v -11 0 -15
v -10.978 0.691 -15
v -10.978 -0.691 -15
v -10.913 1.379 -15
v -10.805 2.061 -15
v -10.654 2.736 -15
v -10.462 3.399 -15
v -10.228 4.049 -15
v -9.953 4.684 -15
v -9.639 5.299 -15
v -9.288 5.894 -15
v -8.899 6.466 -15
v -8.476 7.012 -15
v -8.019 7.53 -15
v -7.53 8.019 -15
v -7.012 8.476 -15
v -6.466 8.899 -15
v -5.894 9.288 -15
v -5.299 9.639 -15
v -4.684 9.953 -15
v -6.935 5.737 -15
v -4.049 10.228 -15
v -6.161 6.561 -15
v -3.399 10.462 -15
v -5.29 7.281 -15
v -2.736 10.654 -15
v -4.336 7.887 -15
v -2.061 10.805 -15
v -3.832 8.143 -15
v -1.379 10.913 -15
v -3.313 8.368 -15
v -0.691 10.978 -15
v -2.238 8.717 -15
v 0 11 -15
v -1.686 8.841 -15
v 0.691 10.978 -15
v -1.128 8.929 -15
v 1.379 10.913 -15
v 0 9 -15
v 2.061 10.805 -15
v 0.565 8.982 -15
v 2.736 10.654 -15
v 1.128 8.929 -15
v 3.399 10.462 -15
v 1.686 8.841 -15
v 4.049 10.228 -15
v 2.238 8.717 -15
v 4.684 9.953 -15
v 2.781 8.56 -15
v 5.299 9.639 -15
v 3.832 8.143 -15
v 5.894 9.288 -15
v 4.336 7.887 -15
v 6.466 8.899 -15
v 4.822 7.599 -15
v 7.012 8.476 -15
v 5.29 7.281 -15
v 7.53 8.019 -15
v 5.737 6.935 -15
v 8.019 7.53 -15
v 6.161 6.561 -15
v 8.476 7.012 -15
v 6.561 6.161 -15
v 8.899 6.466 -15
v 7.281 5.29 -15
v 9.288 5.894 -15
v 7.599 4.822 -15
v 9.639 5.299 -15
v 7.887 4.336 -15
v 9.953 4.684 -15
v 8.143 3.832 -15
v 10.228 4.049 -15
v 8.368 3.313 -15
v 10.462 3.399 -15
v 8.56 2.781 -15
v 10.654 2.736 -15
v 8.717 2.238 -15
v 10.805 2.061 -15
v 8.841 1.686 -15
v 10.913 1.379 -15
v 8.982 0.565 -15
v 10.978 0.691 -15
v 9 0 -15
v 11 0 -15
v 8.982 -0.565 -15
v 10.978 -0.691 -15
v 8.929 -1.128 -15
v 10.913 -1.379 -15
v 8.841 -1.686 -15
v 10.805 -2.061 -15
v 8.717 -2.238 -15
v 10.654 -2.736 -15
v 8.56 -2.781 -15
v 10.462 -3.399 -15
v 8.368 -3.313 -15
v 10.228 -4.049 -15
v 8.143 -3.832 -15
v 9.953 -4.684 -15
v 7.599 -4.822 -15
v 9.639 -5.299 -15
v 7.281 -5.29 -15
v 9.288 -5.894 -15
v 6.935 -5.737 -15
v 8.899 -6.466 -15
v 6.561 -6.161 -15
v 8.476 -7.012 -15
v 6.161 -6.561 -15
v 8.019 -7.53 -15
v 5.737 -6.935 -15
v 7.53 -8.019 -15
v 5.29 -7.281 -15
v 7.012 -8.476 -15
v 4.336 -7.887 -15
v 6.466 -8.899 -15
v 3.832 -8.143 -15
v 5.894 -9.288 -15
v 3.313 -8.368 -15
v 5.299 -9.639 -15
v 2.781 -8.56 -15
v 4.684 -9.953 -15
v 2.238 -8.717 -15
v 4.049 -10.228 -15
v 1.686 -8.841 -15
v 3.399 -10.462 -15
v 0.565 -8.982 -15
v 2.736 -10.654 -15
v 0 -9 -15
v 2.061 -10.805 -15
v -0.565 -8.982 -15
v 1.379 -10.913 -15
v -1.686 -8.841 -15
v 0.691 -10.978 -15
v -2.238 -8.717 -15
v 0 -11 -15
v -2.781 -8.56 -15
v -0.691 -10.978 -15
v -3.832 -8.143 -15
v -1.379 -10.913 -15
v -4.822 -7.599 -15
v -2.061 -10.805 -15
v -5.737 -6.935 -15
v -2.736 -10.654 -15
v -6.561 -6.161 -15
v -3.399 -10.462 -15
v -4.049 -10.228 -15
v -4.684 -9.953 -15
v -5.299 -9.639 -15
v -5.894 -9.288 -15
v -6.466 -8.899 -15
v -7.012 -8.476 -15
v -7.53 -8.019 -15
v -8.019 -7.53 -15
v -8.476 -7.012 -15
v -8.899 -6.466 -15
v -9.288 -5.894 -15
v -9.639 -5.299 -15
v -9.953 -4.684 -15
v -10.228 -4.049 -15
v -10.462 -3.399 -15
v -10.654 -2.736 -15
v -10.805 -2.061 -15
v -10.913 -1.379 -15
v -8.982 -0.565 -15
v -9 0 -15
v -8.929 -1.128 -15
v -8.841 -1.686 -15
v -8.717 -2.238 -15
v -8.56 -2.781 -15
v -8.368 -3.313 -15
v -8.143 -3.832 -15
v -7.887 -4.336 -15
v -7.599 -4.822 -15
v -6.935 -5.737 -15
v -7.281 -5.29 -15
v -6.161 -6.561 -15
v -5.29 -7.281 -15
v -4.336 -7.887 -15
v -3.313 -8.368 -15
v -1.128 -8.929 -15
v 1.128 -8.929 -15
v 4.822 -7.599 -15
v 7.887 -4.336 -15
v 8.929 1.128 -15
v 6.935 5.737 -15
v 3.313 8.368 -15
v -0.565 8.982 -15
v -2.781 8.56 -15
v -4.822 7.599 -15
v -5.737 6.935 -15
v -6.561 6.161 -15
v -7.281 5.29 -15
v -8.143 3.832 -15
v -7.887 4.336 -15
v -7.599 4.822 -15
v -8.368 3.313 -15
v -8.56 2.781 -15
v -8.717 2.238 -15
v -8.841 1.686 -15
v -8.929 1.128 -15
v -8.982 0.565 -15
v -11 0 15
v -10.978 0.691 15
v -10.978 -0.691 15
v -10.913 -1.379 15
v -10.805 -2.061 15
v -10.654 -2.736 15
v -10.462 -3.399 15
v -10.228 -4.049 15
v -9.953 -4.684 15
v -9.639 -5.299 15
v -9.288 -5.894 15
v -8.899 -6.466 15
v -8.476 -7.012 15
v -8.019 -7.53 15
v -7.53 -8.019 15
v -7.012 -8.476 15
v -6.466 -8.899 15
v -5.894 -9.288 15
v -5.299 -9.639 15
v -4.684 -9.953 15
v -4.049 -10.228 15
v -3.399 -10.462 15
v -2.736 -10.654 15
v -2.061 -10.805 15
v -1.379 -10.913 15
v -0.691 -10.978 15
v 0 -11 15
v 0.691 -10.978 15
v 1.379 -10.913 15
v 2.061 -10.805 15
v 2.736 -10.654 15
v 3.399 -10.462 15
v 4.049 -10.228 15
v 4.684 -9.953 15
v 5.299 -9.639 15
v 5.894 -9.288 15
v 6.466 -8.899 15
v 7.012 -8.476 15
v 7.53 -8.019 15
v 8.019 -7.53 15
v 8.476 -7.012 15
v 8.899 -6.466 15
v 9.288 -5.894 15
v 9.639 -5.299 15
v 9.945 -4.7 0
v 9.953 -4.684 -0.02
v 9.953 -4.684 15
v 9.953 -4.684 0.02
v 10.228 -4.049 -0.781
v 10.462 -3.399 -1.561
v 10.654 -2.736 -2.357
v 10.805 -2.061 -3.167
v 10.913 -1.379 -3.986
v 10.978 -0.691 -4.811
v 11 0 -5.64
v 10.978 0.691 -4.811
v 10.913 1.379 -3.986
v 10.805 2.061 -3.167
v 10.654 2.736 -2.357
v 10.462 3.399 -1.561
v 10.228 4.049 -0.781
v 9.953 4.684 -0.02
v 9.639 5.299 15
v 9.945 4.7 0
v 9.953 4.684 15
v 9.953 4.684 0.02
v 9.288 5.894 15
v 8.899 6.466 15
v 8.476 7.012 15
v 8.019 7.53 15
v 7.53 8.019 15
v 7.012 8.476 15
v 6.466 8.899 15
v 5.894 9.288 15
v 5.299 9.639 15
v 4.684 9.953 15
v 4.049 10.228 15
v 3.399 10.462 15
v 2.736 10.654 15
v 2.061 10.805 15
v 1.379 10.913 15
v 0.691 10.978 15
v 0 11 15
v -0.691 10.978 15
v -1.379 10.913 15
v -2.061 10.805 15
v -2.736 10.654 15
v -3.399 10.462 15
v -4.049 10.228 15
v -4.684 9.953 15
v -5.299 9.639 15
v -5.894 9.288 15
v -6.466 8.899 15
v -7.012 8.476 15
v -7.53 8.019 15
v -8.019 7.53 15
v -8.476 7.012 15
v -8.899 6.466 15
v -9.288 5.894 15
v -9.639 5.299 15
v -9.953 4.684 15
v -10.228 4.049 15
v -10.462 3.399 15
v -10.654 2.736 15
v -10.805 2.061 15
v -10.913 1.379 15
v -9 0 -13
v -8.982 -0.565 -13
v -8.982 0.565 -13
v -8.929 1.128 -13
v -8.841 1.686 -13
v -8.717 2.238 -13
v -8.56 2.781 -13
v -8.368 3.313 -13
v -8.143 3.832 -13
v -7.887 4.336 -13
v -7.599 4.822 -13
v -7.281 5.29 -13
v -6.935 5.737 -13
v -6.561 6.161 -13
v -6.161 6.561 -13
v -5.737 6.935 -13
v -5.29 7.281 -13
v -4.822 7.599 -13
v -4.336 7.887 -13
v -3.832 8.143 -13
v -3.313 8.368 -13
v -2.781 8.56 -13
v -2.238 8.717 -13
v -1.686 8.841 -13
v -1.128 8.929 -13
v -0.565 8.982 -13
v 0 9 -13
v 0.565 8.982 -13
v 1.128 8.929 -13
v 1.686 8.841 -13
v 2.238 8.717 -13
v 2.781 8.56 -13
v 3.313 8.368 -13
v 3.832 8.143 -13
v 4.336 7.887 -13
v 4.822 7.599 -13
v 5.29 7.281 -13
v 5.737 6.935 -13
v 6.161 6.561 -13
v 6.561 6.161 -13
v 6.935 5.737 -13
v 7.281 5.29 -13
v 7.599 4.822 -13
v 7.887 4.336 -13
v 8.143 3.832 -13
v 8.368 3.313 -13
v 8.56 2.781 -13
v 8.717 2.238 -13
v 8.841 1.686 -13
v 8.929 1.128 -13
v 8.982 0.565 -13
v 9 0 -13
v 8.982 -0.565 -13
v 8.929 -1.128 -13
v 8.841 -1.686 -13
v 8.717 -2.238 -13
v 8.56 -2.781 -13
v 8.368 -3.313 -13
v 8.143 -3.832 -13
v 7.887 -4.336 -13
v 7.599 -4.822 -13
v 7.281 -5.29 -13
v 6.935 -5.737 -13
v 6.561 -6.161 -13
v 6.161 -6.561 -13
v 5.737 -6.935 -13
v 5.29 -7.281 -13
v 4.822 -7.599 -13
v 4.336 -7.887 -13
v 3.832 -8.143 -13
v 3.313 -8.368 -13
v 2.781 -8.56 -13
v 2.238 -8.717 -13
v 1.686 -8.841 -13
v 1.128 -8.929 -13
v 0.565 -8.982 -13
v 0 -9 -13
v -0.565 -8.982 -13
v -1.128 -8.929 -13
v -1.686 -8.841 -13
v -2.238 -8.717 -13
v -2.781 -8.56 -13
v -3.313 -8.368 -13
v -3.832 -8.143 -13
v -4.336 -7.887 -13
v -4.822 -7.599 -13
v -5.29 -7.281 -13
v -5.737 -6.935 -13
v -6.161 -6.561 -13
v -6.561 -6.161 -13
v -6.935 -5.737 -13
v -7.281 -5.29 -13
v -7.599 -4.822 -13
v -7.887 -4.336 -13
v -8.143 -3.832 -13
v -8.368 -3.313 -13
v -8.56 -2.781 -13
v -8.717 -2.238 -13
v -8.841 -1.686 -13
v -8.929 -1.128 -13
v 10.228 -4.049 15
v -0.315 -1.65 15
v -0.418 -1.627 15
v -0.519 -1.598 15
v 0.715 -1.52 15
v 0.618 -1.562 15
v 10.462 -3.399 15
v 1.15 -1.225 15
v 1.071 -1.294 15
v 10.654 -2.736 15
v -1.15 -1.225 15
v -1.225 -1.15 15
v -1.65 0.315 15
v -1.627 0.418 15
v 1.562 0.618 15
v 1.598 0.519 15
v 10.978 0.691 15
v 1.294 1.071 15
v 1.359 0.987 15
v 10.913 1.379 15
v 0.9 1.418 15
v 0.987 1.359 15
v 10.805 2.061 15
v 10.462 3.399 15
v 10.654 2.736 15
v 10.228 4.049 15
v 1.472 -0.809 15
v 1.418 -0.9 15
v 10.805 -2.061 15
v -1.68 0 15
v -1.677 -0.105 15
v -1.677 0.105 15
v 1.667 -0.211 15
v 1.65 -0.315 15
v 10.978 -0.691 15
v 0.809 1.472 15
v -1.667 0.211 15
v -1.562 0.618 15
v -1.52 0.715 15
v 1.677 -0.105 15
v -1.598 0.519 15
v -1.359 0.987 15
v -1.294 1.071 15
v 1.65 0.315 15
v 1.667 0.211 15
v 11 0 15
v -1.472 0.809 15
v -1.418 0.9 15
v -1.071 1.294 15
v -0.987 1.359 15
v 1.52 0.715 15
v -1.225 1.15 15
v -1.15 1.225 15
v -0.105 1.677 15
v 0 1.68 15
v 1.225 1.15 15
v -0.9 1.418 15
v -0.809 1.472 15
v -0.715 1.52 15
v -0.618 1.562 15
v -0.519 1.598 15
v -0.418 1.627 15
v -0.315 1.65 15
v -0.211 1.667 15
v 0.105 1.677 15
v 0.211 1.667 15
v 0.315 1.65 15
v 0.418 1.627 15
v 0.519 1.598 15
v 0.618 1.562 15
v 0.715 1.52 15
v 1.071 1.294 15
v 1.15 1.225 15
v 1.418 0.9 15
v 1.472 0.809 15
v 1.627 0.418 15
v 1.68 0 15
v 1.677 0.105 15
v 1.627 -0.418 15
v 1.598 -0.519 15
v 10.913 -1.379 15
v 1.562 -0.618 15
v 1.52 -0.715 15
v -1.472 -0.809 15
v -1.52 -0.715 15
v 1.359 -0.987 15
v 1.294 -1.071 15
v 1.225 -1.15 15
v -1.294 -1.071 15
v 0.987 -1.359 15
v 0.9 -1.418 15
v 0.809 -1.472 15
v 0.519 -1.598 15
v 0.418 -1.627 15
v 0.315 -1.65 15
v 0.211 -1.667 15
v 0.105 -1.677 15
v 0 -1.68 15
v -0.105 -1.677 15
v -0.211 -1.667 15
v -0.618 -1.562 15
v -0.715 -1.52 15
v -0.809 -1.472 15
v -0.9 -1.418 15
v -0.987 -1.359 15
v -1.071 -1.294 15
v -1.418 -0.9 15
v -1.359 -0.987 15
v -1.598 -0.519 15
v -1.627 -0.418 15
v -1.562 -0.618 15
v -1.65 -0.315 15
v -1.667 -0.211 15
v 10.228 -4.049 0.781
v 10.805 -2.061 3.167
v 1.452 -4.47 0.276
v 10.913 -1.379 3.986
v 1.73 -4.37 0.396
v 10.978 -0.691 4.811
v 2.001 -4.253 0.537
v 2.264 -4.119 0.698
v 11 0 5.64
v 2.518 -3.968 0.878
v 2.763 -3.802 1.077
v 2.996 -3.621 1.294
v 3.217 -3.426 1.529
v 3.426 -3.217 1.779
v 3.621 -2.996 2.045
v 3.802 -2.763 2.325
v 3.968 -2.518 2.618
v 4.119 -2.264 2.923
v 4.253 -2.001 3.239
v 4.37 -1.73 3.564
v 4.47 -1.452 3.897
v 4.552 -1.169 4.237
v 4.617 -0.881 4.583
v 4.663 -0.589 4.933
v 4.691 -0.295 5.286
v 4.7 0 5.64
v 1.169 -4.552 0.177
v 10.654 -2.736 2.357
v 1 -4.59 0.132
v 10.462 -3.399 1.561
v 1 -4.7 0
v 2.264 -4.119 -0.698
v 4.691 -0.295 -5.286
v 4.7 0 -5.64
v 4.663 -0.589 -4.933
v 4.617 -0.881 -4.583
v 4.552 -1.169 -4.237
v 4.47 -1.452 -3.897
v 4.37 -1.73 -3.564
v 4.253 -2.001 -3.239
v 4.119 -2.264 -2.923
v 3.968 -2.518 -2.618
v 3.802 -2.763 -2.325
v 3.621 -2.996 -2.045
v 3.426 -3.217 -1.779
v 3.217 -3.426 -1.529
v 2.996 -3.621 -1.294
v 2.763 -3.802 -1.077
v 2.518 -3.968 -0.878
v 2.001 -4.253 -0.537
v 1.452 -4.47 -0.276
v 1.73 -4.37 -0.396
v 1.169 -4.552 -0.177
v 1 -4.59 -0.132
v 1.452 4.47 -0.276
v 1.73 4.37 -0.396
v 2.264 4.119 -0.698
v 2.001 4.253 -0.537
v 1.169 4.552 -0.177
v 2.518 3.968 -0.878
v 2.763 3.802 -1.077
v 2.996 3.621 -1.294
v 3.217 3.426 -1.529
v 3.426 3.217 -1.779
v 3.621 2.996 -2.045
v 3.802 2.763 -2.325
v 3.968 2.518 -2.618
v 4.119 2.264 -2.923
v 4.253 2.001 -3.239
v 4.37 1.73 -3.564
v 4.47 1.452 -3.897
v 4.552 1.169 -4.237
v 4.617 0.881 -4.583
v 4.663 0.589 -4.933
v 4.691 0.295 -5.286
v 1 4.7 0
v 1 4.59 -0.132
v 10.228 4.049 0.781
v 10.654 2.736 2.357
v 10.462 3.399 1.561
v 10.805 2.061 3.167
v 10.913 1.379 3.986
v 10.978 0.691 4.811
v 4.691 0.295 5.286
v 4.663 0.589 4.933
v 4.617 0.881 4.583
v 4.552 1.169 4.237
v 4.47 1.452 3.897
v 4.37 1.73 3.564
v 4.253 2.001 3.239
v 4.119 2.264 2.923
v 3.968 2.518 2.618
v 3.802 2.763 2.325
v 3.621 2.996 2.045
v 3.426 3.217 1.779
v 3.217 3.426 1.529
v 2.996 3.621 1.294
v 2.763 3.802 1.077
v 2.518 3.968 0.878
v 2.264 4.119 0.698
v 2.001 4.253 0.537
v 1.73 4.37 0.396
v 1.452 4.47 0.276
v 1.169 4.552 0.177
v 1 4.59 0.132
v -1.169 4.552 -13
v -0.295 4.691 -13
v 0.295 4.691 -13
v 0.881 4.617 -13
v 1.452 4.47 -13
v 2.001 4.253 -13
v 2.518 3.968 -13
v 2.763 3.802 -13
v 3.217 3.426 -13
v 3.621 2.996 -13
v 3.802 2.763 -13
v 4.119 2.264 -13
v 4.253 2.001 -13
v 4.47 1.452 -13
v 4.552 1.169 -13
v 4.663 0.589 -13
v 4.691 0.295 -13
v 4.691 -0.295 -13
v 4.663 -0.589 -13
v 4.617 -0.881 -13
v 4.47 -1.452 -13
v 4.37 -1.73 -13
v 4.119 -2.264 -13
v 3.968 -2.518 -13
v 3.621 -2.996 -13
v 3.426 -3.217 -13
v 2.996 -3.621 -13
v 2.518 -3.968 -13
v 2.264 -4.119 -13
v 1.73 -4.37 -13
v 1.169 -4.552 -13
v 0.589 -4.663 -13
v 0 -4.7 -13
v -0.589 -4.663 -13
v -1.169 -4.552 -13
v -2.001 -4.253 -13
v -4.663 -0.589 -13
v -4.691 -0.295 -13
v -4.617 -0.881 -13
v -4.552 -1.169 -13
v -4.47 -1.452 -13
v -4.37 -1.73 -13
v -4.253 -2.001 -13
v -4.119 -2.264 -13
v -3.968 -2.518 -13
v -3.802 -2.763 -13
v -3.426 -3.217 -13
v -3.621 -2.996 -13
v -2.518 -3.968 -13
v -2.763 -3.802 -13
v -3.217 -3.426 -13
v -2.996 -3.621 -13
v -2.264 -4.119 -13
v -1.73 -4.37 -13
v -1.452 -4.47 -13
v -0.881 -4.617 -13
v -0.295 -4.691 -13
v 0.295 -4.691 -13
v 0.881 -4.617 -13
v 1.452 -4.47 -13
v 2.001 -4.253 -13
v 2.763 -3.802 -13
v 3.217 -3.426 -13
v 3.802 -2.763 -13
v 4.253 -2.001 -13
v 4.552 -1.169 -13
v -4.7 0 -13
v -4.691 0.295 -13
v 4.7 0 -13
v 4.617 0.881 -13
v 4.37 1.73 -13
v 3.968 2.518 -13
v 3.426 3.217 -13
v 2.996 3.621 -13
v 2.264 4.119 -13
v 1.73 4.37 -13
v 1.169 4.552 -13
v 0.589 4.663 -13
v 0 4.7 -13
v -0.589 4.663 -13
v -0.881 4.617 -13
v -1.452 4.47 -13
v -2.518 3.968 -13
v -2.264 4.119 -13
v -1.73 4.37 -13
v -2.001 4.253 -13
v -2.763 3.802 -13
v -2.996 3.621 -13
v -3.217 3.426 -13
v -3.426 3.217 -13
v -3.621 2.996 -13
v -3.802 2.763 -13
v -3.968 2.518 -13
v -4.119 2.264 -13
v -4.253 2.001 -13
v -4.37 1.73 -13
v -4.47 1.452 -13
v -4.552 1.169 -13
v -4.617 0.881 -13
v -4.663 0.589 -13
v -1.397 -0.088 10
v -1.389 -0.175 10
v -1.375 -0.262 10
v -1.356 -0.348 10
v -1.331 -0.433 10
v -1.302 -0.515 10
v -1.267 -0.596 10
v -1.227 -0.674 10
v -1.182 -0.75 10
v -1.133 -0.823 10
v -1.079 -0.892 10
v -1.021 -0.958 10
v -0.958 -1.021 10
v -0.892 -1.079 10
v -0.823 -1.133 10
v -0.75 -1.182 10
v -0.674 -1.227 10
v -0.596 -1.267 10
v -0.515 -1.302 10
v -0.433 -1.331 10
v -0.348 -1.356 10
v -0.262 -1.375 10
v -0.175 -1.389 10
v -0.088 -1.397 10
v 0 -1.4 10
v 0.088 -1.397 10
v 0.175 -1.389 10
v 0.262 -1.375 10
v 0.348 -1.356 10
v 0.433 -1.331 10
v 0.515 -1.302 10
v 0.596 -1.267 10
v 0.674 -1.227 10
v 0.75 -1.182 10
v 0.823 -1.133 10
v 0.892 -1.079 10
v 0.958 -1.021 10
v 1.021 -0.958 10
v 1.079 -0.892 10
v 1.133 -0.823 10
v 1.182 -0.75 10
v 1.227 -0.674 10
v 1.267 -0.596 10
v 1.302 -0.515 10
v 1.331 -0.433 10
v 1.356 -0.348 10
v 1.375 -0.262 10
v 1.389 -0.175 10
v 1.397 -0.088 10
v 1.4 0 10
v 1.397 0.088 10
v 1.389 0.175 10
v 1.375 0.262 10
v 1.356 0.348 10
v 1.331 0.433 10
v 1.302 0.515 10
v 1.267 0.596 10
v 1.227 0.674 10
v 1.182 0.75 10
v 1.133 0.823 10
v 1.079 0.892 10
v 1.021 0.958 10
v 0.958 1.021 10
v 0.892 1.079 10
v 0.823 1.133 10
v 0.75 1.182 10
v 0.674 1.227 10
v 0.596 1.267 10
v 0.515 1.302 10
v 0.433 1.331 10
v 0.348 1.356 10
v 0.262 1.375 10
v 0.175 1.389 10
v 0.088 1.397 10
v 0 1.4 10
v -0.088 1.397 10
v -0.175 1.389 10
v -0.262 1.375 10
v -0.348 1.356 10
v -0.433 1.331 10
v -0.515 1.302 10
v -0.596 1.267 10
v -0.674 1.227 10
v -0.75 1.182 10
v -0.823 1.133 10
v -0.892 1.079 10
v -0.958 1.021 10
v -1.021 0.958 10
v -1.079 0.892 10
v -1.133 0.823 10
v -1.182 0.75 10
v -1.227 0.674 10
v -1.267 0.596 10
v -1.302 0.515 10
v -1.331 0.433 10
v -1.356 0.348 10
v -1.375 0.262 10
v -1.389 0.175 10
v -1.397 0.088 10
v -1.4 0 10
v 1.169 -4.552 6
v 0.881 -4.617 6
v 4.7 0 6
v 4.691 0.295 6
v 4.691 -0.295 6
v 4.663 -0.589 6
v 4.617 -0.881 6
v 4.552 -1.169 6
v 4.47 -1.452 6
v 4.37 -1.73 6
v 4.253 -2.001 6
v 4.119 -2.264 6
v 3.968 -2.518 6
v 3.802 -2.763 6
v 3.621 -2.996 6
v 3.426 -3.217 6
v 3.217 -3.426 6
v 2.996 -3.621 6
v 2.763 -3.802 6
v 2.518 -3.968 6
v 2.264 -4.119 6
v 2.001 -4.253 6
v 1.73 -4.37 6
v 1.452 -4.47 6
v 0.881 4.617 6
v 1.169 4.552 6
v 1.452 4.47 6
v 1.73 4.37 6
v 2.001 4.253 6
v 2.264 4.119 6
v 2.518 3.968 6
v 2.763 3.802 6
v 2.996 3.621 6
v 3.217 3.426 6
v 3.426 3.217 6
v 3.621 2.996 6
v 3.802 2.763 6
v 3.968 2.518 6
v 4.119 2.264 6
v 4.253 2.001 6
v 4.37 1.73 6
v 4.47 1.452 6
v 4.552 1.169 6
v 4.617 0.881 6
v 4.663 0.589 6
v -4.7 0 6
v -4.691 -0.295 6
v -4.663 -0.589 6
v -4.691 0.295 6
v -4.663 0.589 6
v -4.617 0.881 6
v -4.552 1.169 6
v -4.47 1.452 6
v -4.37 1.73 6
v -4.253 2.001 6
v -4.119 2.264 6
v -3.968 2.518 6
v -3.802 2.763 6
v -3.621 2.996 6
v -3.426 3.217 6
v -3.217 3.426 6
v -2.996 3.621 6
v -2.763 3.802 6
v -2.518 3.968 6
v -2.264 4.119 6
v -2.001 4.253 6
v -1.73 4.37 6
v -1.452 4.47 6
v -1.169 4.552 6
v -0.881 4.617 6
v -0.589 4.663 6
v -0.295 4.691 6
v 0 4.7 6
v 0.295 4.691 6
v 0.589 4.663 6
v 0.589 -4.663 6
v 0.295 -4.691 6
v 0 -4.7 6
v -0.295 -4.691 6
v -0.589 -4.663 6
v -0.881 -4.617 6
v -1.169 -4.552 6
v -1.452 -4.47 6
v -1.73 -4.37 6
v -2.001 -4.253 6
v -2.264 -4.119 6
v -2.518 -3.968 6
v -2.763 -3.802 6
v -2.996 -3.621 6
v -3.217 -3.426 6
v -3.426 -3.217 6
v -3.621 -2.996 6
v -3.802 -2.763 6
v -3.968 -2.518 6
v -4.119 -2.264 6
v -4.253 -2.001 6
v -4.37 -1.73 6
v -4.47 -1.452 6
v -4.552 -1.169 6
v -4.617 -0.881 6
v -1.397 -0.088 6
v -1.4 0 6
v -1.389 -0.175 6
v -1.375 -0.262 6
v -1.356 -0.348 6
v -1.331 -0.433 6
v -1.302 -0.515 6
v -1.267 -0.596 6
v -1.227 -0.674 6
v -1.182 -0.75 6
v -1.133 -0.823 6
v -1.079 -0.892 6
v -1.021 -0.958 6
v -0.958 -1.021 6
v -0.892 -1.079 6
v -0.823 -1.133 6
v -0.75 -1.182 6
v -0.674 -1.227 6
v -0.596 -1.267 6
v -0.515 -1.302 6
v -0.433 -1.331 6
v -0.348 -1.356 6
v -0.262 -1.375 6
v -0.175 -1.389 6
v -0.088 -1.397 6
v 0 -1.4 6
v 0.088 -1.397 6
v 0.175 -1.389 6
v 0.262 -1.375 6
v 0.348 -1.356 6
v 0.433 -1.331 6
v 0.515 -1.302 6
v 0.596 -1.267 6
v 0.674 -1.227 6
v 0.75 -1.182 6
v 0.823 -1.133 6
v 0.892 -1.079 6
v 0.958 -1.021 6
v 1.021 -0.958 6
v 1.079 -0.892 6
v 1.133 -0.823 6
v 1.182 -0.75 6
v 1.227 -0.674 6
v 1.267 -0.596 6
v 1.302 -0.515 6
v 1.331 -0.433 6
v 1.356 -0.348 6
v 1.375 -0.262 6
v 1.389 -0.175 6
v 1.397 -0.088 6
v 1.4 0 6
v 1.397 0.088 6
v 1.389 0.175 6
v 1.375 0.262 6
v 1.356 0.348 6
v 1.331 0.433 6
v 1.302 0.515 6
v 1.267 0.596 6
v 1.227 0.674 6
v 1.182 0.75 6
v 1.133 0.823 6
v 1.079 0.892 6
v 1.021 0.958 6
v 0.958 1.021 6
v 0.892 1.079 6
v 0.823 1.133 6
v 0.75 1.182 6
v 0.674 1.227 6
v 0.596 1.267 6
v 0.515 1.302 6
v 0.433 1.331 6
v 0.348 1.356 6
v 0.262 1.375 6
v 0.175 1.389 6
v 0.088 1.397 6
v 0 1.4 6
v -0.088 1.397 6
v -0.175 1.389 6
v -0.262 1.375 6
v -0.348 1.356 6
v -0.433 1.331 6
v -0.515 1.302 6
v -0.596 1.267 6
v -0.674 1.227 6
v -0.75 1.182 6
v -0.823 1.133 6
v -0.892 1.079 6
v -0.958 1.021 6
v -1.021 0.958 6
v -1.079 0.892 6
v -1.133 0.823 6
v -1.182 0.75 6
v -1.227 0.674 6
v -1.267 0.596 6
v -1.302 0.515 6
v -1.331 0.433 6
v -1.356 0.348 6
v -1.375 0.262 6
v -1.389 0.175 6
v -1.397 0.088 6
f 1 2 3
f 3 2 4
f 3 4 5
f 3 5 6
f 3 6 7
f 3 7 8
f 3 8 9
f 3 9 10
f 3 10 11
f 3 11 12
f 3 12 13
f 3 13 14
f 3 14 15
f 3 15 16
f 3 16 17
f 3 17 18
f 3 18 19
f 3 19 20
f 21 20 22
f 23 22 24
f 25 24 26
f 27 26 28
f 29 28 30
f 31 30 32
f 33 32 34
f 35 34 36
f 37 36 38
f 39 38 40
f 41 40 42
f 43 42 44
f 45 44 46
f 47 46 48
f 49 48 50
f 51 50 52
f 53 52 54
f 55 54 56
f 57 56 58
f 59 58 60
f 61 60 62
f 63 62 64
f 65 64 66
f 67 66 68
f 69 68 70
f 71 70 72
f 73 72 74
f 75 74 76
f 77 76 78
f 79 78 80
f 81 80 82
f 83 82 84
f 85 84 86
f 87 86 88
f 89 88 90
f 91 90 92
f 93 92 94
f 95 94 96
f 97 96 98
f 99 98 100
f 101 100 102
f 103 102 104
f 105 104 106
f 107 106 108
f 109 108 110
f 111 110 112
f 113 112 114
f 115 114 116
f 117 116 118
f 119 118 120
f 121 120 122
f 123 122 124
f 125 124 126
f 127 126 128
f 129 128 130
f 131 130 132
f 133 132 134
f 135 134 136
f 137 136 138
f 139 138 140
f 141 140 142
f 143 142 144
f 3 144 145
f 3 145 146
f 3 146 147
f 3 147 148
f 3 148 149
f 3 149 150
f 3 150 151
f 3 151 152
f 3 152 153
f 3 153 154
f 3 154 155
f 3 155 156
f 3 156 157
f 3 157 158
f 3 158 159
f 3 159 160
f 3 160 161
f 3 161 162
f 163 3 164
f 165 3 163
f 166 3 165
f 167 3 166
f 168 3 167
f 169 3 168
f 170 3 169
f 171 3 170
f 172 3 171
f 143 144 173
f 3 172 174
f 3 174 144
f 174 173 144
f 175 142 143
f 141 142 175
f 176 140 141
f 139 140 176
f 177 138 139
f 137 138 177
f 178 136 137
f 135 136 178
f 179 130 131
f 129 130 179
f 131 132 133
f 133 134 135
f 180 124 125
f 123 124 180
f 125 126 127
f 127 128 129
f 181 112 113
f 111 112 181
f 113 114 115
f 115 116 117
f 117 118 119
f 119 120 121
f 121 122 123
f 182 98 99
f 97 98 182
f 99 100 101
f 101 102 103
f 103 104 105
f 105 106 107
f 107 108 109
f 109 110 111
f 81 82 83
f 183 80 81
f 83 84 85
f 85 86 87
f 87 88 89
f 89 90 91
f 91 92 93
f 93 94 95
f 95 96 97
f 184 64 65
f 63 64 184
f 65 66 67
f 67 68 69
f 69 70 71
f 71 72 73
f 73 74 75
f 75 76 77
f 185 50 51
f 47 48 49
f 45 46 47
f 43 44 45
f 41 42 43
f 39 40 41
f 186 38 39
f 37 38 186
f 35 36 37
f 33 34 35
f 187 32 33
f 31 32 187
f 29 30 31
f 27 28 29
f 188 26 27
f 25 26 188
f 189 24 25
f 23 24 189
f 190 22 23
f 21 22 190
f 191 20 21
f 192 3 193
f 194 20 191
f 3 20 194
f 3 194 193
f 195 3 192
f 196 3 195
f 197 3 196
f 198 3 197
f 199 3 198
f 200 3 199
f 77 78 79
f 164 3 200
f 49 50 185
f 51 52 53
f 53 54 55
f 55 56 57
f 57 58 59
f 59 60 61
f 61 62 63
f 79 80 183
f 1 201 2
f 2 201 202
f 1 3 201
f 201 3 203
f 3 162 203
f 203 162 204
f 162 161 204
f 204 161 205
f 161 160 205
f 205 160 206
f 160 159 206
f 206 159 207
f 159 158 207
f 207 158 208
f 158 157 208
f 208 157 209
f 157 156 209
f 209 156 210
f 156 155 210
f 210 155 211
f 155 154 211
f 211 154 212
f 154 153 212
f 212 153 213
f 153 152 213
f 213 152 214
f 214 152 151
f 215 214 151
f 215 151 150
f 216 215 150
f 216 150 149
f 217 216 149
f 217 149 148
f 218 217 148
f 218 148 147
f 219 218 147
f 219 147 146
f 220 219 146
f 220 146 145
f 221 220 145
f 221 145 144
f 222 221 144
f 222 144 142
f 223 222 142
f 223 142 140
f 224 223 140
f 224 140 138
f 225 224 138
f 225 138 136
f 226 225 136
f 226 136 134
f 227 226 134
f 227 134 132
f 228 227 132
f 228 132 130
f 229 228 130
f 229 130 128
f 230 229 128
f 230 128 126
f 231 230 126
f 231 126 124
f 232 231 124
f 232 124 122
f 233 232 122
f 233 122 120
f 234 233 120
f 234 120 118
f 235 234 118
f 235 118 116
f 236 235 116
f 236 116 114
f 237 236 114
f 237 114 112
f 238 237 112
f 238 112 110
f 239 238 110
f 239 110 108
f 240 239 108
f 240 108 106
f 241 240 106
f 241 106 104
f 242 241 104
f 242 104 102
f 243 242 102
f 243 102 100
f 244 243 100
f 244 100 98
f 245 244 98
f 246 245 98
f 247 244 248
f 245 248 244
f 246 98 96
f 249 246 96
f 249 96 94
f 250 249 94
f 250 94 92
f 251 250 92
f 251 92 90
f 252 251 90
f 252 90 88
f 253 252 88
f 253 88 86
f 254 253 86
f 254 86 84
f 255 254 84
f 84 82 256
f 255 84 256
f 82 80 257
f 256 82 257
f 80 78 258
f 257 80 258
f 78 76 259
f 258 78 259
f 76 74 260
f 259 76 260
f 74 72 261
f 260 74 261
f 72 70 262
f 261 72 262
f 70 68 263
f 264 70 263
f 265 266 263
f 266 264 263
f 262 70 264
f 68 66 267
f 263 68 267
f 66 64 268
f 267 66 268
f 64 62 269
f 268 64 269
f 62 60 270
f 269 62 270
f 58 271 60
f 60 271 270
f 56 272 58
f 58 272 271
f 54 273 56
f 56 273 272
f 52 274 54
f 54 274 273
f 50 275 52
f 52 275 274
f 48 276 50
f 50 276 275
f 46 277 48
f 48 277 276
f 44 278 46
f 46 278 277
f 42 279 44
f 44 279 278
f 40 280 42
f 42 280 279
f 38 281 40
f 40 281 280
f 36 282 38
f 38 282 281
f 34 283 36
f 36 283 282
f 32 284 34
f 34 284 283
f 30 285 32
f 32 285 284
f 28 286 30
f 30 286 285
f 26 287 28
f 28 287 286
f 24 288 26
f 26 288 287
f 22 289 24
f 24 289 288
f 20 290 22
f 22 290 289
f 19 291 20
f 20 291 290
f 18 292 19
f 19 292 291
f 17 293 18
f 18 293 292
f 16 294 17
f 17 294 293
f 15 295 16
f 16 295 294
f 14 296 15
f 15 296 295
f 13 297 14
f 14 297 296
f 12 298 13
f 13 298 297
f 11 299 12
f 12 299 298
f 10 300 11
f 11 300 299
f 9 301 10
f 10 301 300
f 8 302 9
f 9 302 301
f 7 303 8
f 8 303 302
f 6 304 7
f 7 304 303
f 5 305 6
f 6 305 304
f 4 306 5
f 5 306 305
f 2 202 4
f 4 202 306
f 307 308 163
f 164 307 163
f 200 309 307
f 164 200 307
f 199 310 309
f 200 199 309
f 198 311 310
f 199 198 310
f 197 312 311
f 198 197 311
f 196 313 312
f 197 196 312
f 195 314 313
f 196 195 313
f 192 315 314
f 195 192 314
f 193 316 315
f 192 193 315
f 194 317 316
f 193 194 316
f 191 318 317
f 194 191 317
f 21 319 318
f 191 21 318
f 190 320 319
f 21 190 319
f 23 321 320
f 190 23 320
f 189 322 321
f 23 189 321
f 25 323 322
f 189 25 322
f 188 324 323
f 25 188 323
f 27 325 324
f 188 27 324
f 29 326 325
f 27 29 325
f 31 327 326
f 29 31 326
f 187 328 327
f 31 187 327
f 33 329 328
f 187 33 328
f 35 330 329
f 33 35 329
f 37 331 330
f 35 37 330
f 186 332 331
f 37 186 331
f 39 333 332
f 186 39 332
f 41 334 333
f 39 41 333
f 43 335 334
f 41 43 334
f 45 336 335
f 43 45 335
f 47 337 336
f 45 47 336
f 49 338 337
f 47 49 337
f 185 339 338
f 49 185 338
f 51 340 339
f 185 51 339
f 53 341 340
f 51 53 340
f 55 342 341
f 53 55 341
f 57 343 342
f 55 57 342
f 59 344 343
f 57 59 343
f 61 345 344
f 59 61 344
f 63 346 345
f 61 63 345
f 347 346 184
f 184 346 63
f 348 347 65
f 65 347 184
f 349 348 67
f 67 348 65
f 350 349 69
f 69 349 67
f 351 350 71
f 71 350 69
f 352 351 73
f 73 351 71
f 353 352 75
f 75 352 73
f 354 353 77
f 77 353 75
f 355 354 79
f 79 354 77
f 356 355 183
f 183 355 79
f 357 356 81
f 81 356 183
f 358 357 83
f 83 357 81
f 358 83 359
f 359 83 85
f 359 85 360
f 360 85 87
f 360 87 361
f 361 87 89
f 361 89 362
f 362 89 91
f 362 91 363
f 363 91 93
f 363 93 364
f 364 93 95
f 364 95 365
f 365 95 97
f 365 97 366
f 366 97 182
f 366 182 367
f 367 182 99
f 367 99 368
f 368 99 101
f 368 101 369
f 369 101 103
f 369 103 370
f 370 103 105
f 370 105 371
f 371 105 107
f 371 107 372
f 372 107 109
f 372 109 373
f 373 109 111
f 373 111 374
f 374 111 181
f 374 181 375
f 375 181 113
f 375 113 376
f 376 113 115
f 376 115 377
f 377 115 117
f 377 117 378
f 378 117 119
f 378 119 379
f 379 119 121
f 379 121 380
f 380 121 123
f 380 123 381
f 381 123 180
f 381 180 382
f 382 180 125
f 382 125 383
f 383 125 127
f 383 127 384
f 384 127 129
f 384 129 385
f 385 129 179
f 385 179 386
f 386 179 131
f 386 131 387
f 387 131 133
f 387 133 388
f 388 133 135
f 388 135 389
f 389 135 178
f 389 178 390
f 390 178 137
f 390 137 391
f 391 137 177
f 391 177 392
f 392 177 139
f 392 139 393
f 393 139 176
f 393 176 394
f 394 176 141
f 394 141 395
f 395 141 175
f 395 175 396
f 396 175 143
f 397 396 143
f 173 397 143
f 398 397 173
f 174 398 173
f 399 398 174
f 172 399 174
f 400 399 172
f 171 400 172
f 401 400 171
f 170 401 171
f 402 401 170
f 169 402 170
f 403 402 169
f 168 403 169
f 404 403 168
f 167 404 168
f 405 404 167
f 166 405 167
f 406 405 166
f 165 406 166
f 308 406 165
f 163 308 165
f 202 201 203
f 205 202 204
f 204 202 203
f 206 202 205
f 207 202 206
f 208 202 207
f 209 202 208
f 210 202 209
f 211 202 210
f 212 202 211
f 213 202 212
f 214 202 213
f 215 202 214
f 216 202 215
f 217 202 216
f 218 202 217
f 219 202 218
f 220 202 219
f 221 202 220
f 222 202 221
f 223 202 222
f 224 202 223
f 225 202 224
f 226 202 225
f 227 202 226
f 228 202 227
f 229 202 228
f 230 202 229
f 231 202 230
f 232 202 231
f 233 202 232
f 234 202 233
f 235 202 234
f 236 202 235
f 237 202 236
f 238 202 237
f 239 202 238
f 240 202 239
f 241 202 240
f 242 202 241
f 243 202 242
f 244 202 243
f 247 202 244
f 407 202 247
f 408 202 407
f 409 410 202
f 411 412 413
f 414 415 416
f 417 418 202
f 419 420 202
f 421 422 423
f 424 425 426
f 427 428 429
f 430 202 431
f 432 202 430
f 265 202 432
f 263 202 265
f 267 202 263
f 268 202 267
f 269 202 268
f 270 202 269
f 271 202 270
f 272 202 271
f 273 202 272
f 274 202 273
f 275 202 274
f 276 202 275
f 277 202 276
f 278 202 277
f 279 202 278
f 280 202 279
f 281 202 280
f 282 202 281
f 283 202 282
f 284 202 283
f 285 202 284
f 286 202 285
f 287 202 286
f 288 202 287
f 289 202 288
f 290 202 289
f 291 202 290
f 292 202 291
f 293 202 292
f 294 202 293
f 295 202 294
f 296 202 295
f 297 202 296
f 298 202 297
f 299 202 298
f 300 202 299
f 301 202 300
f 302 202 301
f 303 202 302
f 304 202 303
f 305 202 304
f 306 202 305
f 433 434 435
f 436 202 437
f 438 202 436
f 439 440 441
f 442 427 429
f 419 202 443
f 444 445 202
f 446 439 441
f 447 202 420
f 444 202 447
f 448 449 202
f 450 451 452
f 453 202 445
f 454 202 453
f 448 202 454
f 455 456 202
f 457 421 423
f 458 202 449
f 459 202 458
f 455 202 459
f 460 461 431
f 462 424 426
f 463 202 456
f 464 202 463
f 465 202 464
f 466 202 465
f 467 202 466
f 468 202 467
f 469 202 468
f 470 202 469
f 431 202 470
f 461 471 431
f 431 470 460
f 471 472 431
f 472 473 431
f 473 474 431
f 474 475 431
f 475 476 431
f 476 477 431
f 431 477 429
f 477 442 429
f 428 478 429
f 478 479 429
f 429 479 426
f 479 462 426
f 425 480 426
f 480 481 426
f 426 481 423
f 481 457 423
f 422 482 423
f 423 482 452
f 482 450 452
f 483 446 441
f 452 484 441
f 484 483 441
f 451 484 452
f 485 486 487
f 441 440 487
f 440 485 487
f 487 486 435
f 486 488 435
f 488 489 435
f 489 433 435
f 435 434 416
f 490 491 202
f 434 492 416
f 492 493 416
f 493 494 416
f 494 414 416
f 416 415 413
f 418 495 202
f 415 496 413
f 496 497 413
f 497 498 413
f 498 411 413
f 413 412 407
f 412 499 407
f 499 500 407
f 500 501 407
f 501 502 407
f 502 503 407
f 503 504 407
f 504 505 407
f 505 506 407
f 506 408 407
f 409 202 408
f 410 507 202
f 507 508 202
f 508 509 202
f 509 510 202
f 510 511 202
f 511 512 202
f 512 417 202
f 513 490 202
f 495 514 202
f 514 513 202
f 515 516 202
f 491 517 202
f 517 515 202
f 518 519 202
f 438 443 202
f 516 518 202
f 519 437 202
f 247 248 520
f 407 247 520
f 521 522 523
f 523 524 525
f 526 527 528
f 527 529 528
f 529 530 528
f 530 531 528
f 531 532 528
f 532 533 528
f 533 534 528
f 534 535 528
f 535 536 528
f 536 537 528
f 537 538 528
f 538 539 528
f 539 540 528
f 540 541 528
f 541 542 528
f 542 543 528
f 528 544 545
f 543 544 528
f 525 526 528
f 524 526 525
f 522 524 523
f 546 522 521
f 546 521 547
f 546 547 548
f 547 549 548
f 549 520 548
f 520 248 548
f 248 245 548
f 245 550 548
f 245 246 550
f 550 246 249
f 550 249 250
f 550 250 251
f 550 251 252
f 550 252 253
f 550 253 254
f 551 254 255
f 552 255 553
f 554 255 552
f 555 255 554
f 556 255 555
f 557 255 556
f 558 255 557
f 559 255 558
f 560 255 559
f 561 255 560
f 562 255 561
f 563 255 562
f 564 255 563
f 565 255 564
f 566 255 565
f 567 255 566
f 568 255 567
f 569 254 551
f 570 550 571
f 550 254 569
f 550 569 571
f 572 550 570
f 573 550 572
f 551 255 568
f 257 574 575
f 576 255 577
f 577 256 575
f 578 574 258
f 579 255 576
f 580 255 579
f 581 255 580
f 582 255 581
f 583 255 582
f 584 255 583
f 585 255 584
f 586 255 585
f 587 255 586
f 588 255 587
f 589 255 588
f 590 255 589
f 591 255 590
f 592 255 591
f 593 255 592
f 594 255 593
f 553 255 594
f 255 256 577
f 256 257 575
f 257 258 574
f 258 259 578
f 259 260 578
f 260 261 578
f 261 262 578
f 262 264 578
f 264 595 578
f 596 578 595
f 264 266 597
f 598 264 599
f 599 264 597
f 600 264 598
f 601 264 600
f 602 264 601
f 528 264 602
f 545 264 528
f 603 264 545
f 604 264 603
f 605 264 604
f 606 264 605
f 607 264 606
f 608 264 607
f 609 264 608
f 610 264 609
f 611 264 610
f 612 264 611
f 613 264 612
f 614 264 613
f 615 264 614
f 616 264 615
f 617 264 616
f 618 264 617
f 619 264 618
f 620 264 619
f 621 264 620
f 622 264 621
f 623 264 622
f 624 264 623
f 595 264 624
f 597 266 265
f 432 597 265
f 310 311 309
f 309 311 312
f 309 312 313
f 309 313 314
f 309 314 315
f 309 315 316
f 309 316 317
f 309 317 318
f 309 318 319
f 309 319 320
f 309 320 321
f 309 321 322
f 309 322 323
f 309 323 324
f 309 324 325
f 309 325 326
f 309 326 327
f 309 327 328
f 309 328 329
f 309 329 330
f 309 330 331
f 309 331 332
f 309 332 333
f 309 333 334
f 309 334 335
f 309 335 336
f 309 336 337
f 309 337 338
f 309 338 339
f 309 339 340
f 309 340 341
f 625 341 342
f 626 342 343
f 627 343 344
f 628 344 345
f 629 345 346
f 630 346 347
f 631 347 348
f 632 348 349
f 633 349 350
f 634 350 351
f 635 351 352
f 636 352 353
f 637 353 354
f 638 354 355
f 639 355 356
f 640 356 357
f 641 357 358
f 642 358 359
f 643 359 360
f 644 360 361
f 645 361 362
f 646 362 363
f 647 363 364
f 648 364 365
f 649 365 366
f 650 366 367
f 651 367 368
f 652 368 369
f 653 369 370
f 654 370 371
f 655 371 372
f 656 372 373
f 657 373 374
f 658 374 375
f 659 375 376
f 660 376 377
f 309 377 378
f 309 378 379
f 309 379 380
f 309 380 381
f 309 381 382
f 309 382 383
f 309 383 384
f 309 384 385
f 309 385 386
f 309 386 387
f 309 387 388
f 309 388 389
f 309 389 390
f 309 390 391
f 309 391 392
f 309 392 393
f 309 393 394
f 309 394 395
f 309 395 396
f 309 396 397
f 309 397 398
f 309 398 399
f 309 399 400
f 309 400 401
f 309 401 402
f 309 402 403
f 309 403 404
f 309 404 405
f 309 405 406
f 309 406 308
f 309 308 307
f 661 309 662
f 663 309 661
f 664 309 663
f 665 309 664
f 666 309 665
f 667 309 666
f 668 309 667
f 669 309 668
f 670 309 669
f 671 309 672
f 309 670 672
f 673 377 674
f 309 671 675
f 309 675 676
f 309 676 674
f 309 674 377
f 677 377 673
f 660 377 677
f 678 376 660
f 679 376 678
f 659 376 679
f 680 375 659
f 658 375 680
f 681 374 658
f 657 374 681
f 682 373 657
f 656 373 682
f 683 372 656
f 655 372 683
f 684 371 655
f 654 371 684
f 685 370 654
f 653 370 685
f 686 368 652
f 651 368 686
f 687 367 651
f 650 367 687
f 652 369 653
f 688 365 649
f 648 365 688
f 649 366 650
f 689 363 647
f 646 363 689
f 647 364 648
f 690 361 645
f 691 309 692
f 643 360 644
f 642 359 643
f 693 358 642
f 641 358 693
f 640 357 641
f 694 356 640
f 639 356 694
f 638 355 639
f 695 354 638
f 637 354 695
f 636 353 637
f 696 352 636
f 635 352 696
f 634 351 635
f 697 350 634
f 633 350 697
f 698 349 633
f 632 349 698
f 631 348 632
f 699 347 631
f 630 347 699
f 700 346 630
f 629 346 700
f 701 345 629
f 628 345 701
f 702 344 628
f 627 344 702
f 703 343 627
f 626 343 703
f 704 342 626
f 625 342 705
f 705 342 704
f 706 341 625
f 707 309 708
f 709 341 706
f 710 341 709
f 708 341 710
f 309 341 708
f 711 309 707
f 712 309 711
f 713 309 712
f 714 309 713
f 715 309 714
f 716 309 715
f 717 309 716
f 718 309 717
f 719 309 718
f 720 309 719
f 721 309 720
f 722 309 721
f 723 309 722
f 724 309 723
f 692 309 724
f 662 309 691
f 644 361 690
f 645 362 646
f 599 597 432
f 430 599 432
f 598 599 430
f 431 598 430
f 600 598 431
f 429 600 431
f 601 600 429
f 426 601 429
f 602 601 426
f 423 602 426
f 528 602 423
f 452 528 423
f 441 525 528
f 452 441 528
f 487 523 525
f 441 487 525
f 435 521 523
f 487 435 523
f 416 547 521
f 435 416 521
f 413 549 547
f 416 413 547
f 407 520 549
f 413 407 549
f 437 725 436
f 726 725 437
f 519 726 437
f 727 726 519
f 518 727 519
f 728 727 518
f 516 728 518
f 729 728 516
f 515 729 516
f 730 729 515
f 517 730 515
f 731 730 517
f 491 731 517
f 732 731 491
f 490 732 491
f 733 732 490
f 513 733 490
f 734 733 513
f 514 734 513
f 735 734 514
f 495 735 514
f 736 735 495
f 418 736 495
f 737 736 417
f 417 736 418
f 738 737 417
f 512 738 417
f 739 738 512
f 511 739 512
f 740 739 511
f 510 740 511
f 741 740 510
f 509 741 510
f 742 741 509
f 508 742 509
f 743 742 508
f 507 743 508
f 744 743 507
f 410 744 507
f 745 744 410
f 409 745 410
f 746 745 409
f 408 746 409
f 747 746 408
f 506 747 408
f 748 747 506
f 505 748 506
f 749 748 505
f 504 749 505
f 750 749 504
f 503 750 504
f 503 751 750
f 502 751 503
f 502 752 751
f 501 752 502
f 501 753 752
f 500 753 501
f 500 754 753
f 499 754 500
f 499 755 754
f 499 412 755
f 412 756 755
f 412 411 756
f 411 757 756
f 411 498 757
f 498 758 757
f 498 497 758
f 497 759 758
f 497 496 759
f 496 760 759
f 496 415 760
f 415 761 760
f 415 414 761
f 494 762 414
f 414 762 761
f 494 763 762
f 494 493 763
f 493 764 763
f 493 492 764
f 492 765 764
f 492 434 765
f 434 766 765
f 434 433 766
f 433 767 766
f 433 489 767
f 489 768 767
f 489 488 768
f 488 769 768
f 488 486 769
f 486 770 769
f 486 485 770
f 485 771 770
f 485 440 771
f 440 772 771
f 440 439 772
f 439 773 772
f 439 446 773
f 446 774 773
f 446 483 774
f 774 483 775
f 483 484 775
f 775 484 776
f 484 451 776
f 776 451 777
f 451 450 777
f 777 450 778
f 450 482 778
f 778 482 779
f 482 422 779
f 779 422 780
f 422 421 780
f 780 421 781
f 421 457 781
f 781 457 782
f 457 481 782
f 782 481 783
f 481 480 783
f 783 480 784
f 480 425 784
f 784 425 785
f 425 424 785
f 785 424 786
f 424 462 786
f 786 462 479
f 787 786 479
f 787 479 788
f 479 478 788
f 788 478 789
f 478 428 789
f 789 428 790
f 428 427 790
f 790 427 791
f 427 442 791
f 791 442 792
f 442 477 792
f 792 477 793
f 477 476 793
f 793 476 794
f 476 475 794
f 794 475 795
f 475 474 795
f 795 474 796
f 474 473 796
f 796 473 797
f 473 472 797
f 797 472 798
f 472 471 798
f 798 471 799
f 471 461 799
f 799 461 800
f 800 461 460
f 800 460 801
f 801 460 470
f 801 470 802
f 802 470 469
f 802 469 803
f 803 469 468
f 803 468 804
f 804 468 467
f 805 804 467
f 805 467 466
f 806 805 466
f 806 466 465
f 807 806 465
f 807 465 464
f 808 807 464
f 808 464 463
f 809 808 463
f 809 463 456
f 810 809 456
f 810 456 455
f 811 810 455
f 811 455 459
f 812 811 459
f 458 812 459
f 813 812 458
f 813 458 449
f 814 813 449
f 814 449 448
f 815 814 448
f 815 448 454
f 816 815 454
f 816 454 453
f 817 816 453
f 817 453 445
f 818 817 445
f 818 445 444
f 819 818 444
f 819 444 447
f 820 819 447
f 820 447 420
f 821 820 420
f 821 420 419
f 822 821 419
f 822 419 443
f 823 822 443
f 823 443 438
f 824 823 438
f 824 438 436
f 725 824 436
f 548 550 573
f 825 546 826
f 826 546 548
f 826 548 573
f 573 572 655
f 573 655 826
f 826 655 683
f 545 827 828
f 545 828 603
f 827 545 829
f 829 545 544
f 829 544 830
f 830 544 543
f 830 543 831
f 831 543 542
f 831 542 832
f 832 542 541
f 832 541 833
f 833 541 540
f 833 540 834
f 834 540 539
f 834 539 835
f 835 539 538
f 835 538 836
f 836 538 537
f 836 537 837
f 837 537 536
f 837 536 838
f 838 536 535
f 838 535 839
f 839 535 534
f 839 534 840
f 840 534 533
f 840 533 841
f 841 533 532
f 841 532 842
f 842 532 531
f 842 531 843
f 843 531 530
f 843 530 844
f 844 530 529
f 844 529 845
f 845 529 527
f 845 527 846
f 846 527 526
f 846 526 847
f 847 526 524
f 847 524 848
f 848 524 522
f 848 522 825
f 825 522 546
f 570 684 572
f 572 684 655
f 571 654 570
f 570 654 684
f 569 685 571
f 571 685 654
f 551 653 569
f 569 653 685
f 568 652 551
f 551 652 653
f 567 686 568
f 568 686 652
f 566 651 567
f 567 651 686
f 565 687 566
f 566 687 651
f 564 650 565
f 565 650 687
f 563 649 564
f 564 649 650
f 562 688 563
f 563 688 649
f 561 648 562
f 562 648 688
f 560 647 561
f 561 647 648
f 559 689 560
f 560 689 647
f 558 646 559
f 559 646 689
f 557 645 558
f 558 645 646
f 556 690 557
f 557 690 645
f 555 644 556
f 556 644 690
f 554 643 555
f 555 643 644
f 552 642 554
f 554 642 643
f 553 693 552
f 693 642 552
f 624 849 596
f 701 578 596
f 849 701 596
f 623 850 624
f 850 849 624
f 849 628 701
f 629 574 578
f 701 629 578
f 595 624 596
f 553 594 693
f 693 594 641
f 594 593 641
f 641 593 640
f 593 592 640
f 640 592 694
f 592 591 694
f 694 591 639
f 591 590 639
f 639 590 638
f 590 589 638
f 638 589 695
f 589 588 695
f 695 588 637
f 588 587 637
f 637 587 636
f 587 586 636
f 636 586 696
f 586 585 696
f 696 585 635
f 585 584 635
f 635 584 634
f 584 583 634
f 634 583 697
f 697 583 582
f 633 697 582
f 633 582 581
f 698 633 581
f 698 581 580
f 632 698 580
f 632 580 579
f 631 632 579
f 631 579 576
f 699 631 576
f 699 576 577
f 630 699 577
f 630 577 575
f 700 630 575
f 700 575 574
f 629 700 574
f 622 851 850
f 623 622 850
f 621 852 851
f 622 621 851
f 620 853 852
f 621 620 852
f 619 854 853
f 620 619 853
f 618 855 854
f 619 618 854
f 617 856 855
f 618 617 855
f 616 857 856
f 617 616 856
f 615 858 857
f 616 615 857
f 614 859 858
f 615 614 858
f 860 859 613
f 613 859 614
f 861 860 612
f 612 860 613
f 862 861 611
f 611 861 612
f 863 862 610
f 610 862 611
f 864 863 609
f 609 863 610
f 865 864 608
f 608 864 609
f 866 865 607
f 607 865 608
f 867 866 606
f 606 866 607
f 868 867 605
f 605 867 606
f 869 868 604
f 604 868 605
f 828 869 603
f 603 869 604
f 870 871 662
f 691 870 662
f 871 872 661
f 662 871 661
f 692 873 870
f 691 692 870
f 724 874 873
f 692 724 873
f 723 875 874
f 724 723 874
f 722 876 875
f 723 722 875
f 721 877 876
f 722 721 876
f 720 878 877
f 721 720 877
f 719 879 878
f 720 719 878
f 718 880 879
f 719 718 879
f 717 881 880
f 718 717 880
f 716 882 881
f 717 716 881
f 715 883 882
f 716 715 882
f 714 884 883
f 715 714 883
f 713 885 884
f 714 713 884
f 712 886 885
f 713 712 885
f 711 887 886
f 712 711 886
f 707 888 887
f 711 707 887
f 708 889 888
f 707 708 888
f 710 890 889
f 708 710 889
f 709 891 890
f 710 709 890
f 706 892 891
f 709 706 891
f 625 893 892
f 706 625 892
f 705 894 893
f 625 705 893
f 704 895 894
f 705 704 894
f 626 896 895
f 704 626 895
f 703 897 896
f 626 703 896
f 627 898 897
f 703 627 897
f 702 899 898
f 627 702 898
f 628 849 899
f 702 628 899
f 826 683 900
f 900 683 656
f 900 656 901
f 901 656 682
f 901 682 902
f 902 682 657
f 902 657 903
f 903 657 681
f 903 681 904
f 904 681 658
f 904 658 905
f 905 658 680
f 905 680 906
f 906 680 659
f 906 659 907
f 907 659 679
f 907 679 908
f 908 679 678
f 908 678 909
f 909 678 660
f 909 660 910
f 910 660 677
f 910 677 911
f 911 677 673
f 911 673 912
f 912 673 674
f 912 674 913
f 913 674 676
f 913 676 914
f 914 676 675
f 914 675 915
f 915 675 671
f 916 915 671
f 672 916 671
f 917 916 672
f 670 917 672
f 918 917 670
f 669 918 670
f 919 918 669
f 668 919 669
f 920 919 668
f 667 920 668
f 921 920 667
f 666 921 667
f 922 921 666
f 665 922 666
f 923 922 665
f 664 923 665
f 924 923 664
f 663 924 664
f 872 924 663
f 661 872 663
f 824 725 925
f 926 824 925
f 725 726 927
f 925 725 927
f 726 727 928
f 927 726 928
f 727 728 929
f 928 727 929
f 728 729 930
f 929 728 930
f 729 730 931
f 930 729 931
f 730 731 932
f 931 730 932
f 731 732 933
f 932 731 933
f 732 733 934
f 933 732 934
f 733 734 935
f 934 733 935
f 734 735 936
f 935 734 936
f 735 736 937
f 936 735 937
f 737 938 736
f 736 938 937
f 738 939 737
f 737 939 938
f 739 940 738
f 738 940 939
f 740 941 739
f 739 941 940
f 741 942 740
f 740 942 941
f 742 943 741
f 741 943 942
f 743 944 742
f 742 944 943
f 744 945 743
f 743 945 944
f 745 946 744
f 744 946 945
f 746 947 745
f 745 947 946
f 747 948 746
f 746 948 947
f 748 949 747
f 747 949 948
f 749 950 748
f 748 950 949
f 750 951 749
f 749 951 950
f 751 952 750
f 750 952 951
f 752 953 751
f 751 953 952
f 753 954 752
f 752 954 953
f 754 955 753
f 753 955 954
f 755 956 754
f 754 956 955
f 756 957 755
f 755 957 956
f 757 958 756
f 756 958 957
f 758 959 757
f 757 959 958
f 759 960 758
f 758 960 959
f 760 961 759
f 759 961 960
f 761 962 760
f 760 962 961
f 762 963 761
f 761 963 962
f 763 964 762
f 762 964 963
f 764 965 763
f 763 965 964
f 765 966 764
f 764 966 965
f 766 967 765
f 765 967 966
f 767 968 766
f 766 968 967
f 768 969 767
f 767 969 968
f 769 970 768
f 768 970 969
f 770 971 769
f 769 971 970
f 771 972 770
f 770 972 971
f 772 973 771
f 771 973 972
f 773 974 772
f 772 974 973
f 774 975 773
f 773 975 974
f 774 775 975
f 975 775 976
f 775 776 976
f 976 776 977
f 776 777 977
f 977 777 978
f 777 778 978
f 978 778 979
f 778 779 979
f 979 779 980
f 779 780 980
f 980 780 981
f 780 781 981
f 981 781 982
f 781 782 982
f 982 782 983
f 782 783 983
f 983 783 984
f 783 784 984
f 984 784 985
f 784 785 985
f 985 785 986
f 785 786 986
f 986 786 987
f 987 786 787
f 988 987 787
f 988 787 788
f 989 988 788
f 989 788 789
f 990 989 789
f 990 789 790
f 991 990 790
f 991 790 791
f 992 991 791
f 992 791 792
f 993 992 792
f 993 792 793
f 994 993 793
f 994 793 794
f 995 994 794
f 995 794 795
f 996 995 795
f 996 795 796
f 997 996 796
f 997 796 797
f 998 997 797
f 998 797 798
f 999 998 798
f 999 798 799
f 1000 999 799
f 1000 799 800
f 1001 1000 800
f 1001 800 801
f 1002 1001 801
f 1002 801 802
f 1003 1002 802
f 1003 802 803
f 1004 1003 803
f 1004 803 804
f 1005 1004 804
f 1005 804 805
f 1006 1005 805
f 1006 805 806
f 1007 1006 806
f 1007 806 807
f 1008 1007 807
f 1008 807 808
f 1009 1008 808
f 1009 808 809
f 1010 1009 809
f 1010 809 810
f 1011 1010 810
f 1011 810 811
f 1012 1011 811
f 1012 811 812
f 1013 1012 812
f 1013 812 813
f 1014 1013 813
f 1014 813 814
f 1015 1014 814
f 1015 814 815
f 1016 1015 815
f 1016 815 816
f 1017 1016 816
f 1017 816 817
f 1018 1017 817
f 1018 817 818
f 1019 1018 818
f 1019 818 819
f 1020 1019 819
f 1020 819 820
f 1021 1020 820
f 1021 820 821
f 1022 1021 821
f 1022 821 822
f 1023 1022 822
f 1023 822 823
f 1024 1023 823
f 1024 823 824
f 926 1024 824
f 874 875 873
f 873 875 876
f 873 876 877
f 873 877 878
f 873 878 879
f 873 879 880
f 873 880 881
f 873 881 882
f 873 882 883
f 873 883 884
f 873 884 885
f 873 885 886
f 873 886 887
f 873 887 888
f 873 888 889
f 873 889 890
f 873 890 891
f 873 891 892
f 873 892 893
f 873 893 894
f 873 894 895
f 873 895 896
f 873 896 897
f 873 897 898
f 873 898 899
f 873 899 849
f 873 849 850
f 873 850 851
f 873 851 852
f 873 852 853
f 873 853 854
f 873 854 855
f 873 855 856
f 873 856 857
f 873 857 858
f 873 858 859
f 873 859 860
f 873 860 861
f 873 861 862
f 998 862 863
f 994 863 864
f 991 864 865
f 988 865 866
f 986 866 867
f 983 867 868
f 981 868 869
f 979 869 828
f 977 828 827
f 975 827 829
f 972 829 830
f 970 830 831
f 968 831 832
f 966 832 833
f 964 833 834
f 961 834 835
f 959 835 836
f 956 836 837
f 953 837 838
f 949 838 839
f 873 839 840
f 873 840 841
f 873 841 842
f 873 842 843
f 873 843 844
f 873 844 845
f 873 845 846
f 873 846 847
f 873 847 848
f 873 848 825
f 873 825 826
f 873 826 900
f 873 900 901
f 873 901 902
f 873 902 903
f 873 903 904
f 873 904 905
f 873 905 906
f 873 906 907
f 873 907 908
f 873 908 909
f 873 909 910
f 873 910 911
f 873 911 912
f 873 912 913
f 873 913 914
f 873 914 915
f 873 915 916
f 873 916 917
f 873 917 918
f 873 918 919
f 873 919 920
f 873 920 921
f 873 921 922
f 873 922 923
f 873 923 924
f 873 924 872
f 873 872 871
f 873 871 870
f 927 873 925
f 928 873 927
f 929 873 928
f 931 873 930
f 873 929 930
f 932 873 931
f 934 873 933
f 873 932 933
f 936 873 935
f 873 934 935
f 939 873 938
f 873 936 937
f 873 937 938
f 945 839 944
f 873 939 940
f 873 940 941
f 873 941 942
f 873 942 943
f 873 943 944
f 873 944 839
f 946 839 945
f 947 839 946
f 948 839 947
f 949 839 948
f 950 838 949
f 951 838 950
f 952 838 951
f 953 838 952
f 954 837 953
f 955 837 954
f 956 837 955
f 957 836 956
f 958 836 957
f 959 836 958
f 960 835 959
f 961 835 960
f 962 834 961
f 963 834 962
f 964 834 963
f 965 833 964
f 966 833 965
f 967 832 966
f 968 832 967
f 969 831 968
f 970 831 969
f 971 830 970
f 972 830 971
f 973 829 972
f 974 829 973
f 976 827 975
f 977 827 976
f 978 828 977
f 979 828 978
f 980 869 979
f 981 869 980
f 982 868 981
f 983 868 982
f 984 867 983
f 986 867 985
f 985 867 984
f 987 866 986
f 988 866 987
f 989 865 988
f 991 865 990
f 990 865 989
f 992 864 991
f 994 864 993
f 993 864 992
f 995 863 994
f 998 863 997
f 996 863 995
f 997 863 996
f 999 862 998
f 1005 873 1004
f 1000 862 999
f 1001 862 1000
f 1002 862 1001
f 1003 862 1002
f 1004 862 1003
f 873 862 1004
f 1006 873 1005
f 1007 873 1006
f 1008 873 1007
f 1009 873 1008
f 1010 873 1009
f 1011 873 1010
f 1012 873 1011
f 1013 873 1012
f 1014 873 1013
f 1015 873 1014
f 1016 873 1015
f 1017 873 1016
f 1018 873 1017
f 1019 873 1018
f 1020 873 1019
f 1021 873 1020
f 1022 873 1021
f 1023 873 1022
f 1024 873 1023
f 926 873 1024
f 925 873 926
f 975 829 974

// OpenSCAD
//Variabels
res=100;

gum_h=2;
gum_r=18/2;

output_r=7;

cube_l=30;

capsule_top=9/2+0.2;
capsule_bottom=18;
capsule_rest=16;

screw_r=1.4;

margin=2;

h1=cube_l/2+5;
d1=sqrt(capsule_top*capsule_top*2);

//Modules
module screw_hole() {
	cylinder(r=screw_r,h=10,center=true,$fn=res);
	translate([0,0,7.5])cylinder(r1=screw_r,r2=screw_r*1.2,h=5,center=true,$fn=res);
}
module gum() {
	cylinder(r=gum_r,h=gum_h,center=true,$fn=res);
}
module cut() {
	translate([0,0,-cube_l/2+gum_h/2])gum();
	translate([0,0,-cube_l/2+(capsule_rest-4)-1])cylinder(r=capsule_top,h=capsule_rest+4,center=true,$fn=res);
	translate([0,0,5])screw_hole();
	scale(v=[1,1,1.2])rotate(a=[180,0,0]){rotate(a=[0,90,0])rotate(a=[0,0,45])translate([0,0,h1/2+1])cube([d1,d1,h1],center=true);
}

}
module body() {
	translate([0,0,-5])cylinder(r=capsule_bottom/2+margin,h=30-10,center=true,$fn=res);
	intersection() {
		translate([0,0,5])scale(v=[2,2,1.15])sphere(r=capsule_bottom/2+margin,$fn=res);
		cylinder(r=capsule_bottom/2+margin,h=30,center=true,$fn=res);
	}
}
	//Render
difference() {
	body();
	cut();
}
